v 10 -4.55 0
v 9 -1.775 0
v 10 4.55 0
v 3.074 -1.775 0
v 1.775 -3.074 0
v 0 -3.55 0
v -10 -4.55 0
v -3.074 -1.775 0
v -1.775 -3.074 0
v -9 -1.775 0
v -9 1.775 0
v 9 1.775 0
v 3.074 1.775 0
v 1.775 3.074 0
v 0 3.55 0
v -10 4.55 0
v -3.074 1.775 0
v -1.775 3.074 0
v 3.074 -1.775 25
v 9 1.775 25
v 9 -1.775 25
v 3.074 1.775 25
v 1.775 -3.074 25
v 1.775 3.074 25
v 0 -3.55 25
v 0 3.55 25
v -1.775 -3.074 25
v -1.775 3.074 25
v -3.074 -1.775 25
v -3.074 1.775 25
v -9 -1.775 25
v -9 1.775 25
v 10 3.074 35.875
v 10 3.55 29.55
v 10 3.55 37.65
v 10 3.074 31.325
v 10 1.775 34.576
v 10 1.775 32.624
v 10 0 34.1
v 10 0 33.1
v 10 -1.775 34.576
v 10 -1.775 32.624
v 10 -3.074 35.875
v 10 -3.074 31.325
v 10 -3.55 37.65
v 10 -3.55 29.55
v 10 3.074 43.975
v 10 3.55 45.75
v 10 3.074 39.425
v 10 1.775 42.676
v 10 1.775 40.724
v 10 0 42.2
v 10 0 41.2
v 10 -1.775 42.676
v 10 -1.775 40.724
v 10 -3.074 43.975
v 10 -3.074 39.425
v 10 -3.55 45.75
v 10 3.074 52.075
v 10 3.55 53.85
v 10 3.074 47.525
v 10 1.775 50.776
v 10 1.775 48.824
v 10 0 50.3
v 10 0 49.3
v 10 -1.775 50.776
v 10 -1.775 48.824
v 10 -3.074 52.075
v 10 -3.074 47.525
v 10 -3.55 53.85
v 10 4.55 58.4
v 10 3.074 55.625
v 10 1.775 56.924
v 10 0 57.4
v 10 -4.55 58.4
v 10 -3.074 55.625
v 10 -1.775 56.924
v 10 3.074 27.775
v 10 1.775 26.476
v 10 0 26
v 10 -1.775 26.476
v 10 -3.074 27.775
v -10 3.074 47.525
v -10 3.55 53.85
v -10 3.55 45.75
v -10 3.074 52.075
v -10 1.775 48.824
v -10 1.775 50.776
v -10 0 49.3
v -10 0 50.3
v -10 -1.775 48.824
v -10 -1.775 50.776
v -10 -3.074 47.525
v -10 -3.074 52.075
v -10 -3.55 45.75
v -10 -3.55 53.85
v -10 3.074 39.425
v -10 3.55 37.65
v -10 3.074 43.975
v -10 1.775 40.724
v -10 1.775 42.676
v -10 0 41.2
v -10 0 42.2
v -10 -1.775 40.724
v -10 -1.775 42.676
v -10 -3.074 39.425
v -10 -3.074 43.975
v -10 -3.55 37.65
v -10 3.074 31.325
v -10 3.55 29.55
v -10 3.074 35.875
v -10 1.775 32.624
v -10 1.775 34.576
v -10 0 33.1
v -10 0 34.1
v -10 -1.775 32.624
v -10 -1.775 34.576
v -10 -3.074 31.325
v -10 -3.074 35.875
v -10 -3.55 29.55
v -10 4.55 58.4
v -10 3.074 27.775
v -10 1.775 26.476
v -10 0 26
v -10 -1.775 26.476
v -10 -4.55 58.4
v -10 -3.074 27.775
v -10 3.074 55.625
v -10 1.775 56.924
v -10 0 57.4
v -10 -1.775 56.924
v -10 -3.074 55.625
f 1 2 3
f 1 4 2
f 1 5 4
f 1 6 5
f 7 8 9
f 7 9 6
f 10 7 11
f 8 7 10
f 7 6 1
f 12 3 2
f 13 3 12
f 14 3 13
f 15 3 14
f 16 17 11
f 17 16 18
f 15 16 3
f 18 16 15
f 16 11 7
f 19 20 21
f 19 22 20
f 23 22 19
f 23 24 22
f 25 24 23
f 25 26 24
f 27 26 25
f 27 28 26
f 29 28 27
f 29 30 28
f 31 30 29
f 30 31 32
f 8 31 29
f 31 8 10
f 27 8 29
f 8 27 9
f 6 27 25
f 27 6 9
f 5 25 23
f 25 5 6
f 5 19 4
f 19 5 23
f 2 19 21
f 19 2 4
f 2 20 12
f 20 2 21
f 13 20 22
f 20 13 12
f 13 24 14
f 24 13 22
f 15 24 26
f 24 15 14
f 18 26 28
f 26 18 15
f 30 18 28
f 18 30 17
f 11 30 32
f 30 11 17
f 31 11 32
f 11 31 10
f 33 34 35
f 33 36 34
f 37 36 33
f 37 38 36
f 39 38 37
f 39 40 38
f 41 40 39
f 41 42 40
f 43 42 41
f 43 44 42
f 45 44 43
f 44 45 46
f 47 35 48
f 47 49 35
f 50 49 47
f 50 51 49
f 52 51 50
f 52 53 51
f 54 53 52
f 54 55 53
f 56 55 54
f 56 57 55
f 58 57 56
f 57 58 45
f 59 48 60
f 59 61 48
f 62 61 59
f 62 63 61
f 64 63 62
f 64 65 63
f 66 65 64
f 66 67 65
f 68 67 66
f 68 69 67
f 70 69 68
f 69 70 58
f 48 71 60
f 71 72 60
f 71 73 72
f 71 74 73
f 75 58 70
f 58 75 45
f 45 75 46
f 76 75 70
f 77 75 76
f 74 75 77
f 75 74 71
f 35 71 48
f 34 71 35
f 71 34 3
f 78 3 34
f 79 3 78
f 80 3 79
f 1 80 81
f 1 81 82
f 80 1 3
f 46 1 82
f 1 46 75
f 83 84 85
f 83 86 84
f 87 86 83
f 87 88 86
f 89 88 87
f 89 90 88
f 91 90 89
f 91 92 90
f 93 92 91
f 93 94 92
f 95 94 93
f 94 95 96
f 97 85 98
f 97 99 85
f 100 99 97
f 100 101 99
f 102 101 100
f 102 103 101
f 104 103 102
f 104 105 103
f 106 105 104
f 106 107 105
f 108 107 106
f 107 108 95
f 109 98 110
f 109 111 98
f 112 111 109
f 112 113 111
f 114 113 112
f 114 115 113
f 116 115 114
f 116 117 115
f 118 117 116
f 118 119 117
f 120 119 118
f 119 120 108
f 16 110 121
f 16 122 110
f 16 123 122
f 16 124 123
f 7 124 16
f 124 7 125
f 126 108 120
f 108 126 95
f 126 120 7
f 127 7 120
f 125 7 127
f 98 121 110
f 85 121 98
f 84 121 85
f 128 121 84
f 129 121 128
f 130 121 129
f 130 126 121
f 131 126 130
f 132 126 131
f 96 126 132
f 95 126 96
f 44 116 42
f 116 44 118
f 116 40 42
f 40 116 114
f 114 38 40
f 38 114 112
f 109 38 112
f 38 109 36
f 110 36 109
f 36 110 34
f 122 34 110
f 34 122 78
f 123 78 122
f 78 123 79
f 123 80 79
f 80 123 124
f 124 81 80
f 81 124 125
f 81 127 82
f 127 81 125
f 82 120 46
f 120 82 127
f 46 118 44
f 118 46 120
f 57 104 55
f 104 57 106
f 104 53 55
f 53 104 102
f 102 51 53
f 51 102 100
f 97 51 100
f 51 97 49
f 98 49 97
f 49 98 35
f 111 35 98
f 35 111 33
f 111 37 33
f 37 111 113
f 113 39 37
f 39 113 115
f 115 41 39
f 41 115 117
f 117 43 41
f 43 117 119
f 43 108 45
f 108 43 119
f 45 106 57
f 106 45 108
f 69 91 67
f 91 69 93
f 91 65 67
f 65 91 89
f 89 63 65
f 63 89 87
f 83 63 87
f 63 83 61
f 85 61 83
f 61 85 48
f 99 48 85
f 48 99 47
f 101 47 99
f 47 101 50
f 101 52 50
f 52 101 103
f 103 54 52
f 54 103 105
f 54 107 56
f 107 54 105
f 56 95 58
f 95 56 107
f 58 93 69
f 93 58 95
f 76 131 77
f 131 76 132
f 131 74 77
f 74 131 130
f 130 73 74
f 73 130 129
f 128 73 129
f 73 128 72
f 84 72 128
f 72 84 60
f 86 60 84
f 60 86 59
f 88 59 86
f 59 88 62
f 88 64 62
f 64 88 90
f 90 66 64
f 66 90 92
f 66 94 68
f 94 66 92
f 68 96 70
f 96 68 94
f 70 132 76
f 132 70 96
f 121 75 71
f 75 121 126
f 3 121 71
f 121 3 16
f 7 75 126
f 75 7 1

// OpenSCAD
// all units in mm

drive_bit_depth = 25;
drive_bit_major_diameter = 7.1;
insert_bit_depth = 20;
insert_bit_major_diameter = 7.1;
insert_bit_offset = 1;
insert_bit_count = 4;
wall_thickness = 1;

difference(){

    // positive space
    linear_extrude(height=drive_bit_depth + wall_thickness + insert_bit_count*(insert_bit_major_diameter+insert_bit_offset)) {
        square(size=[insert_bit_depth, drive_bit_major_diameter+2*wall_thickness], center=true);
    }

    // negative space
    union() {
        // cutout for drive bit
        linear_extrude(height=drive_bit_depth) {
            union() {
                // bit guide
                circle(d=drive_bit_major_diameter);
                // epoxy fill area
                square(size=[insert_bit_depth - 2*wall_thickness,drive_bit_major_diameter*0.5], center=true);
            }
        }

        // cutouts for insert bits
        translate([0,0,drive_bit_depth + wall_thickness]){
            rotate([0,270,0]){
                linear_extrude(height=insert_bit_depth, center=true) {
                    union() {
                        for (i=[0:insert_bit_count-1]){
                            translate([insert_bit_major_diameter / 2 + (insert_bit_major_diameter + insert_bit_offset)*i,0,0]){
                                circle(d=drive_bit_major_diameter);
                            }
                        }
                    }
                }
            }
        }
    }

}
